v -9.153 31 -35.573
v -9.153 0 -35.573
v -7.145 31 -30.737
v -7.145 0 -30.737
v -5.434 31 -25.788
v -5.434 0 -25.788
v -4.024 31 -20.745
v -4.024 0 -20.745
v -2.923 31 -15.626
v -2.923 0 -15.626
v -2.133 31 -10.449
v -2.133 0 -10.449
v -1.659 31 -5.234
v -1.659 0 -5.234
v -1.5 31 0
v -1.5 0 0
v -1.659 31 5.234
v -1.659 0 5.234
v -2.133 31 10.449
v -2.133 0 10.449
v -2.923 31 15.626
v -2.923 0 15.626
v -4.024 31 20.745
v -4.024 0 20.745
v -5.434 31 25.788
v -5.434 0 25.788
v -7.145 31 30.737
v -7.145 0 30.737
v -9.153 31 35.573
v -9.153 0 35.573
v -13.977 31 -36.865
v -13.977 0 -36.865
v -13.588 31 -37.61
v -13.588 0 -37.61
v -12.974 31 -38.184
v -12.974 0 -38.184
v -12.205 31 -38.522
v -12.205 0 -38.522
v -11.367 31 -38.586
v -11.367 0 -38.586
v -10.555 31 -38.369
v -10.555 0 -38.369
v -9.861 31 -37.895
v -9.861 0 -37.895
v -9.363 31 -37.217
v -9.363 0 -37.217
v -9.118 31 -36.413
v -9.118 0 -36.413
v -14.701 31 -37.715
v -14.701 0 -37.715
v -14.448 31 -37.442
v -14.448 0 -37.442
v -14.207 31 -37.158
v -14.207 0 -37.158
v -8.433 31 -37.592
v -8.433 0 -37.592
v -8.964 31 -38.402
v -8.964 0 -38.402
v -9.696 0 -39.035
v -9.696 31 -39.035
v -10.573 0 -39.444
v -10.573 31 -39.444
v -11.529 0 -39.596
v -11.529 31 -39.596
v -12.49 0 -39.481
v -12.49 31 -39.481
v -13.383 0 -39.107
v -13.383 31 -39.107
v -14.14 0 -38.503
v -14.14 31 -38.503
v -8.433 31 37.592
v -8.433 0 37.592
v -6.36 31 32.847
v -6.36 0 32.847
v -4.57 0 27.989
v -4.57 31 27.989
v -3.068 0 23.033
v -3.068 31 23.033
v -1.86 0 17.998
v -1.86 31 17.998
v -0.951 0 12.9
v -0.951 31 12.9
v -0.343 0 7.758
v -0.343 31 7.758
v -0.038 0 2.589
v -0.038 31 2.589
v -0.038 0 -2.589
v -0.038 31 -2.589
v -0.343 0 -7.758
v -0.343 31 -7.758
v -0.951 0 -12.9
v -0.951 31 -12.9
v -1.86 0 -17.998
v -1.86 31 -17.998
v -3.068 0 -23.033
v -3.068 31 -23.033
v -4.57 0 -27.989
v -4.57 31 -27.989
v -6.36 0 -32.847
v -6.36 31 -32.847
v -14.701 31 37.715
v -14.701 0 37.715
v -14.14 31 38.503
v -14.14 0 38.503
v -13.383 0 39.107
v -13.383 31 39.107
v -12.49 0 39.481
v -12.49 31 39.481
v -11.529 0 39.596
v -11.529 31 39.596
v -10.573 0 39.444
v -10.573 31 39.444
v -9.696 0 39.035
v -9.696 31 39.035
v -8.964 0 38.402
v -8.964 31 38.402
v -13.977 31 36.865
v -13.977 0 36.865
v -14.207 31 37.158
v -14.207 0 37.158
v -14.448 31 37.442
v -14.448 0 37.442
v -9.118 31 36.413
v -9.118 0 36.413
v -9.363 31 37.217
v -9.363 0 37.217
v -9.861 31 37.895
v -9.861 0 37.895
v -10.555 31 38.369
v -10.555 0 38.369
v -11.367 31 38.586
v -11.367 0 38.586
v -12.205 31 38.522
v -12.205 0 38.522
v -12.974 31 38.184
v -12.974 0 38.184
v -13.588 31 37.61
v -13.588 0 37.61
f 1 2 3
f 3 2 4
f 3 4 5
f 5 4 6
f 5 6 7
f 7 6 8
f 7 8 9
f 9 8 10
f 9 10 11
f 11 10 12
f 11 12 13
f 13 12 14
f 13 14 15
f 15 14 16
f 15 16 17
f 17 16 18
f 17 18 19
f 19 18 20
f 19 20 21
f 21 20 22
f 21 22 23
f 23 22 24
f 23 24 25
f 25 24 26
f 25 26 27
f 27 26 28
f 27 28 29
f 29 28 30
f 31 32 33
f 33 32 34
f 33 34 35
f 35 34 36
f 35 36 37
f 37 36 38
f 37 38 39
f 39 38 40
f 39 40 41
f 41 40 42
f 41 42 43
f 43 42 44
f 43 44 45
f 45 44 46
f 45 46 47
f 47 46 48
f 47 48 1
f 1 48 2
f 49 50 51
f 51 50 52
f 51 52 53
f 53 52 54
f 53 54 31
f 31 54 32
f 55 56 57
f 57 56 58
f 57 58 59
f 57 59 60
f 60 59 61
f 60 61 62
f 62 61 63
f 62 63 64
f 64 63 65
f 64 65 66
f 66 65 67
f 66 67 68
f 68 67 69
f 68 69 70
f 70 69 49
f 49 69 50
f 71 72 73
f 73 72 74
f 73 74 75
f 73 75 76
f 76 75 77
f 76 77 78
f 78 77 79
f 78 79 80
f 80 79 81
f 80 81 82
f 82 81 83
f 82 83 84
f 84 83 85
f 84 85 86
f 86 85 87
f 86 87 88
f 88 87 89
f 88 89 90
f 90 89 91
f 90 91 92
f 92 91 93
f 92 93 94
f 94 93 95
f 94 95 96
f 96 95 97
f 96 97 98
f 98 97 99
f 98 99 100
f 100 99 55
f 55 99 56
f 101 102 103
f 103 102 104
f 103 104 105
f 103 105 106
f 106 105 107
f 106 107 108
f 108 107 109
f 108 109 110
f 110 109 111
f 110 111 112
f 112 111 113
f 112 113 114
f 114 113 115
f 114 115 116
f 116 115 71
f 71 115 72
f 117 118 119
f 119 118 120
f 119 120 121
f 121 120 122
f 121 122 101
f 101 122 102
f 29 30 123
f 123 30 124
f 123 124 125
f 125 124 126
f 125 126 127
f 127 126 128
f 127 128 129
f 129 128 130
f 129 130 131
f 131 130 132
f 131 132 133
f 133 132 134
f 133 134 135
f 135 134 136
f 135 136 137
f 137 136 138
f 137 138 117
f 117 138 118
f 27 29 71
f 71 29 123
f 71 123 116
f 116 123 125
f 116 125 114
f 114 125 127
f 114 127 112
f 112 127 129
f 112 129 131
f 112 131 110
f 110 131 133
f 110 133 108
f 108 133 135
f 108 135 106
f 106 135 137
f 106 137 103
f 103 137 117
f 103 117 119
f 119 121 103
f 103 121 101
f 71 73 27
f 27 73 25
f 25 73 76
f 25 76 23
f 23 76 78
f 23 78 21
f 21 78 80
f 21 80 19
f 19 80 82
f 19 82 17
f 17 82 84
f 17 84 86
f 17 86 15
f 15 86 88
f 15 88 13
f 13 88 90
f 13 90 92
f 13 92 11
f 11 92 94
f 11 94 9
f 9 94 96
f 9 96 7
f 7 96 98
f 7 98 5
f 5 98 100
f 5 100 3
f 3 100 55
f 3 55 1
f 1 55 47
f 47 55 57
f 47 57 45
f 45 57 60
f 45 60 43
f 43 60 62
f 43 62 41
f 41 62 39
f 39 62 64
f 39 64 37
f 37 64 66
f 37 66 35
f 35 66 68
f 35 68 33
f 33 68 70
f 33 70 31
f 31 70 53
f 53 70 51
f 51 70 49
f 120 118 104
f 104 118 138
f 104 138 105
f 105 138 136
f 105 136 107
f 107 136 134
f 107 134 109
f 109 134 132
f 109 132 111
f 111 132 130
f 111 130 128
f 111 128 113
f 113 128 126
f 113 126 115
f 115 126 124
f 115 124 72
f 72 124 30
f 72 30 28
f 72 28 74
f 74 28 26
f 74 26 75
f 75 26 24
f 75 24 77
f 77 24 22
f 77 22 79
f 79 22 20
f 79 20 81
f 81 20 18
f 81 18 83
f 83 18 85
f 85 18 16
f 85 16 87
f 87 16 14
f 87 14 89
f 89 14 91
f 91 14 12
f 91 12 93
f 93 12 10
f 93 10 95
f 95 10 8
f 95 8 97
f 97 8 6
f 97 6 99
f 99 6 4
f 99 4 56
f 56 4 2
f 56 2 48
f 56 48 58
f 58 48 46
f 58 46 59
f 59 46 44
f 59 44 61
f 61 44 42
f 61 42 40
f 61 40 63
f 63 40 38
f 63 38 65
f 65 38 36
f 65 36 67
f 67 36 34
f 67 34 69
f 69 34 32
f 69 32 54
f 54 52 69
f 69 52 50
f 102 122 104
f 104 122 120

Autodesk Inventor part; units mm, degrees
ref_plane "YZ Plane" through (0, 0, 0) normal (1, 0, 0) x (0, 1, 0)
ref_plane "XZ Plane" through (0, 0, 0) normal (0, 1, 0) x (-1, 0, 0)
ref_plane "XY Plane" through (0, 0, 0) normal (0, 0, 1) x (1, 0, 0)
sketch "スケッチ1" plane through (0, 0, 0) normal (0, 1, 0) x (-1, 0, 0)
  arc A0 (8.4334, 37.592) -> (8.4334, -37.592) centre (88, 0) ccw
  arc A1 (8.5926, 34.3032) -> (8.5926, -34.3032) centre (88, 0) ccw
  line L0 (0, -123.2) -> (0, 123.2) construction
  line L1 (211.2, 0) -> (-35.2, 0) construction
  line L2 (88, 0) -> (38.8561, -49.1439)
  line L3 (88, 0) -> (38.8561, 49.1439)
  circle A2 centre (88, 0) radius 88 construction
  line L4 (38.8561, -49.1439) -> (21.1784, -31.4663) construction
  line L5 (21.1784, -31.4663) -> (10.6608, -41.9839) construction
  line L6 (38.8561, 49.1439) -> (21.1784, 31.4663) construction
  line L7 (21.1784, 31.4663) -> (10.6608, 41.9839) construction
  circle A3 centre (11.598, 36.0969) radius 3.5
  circle A4 centre (11.598, 36.0969) radius 2.5
  circle A5 centre (11.598, -36.0969) radius 3.5
  circle A6 centre (11.598, -36.0969) radius 2.5
  arc A7 (14.7014, 37.7152) -> (12.2579, 32.6597) centre (21.1784, 31.4663) ccw
  arc A8 (12.2579, -32.6597) -> (14.7014, -37.7152) centre (21.1784, -31.4663) ccw
  arc A9 (9.1534, 35.5734) -> (10.45, -38.3177) centre (88, 0) ccw
  point P0 (0, 0)
  point P1 (12.4744, 33.7556)
  point P2 (13.9772, 36.8646)
  point P3 (8.4334, -37.592)
  point P4 (14.7014, -37.7152)
  point P5 (13.9772, -36.8646)
  point P6 (12.4744, -33.7556)
  point P7 (12.2579, -32.6597)
  point P8 (8.5926, -34.3032)
  point P9 (8.5926, 34.3032)
  point P10 (9.1534, -35.5734)
  point P11 (8.5926, -34.3032)
  dimension "d6" = 5
  dimension "d0" = 88
  dimension "d2" = 86.5
  dimension "d3" = 69.5
  dimension "d4" = 176
  dimension "d5" = 25
  dimension "d7" = 7
  dimension "d8" = 9
extrude "押し出し1" add sketch "スケッチ1" along normal blind 31 contours A3 A1 A5 A0 | A3 A7 A4 A9 | A5 A9 A6 A8 picked at (10.6807, 39.1053) picked at (8.9829, -37.8462)
properties part number "Machine_Cover"
